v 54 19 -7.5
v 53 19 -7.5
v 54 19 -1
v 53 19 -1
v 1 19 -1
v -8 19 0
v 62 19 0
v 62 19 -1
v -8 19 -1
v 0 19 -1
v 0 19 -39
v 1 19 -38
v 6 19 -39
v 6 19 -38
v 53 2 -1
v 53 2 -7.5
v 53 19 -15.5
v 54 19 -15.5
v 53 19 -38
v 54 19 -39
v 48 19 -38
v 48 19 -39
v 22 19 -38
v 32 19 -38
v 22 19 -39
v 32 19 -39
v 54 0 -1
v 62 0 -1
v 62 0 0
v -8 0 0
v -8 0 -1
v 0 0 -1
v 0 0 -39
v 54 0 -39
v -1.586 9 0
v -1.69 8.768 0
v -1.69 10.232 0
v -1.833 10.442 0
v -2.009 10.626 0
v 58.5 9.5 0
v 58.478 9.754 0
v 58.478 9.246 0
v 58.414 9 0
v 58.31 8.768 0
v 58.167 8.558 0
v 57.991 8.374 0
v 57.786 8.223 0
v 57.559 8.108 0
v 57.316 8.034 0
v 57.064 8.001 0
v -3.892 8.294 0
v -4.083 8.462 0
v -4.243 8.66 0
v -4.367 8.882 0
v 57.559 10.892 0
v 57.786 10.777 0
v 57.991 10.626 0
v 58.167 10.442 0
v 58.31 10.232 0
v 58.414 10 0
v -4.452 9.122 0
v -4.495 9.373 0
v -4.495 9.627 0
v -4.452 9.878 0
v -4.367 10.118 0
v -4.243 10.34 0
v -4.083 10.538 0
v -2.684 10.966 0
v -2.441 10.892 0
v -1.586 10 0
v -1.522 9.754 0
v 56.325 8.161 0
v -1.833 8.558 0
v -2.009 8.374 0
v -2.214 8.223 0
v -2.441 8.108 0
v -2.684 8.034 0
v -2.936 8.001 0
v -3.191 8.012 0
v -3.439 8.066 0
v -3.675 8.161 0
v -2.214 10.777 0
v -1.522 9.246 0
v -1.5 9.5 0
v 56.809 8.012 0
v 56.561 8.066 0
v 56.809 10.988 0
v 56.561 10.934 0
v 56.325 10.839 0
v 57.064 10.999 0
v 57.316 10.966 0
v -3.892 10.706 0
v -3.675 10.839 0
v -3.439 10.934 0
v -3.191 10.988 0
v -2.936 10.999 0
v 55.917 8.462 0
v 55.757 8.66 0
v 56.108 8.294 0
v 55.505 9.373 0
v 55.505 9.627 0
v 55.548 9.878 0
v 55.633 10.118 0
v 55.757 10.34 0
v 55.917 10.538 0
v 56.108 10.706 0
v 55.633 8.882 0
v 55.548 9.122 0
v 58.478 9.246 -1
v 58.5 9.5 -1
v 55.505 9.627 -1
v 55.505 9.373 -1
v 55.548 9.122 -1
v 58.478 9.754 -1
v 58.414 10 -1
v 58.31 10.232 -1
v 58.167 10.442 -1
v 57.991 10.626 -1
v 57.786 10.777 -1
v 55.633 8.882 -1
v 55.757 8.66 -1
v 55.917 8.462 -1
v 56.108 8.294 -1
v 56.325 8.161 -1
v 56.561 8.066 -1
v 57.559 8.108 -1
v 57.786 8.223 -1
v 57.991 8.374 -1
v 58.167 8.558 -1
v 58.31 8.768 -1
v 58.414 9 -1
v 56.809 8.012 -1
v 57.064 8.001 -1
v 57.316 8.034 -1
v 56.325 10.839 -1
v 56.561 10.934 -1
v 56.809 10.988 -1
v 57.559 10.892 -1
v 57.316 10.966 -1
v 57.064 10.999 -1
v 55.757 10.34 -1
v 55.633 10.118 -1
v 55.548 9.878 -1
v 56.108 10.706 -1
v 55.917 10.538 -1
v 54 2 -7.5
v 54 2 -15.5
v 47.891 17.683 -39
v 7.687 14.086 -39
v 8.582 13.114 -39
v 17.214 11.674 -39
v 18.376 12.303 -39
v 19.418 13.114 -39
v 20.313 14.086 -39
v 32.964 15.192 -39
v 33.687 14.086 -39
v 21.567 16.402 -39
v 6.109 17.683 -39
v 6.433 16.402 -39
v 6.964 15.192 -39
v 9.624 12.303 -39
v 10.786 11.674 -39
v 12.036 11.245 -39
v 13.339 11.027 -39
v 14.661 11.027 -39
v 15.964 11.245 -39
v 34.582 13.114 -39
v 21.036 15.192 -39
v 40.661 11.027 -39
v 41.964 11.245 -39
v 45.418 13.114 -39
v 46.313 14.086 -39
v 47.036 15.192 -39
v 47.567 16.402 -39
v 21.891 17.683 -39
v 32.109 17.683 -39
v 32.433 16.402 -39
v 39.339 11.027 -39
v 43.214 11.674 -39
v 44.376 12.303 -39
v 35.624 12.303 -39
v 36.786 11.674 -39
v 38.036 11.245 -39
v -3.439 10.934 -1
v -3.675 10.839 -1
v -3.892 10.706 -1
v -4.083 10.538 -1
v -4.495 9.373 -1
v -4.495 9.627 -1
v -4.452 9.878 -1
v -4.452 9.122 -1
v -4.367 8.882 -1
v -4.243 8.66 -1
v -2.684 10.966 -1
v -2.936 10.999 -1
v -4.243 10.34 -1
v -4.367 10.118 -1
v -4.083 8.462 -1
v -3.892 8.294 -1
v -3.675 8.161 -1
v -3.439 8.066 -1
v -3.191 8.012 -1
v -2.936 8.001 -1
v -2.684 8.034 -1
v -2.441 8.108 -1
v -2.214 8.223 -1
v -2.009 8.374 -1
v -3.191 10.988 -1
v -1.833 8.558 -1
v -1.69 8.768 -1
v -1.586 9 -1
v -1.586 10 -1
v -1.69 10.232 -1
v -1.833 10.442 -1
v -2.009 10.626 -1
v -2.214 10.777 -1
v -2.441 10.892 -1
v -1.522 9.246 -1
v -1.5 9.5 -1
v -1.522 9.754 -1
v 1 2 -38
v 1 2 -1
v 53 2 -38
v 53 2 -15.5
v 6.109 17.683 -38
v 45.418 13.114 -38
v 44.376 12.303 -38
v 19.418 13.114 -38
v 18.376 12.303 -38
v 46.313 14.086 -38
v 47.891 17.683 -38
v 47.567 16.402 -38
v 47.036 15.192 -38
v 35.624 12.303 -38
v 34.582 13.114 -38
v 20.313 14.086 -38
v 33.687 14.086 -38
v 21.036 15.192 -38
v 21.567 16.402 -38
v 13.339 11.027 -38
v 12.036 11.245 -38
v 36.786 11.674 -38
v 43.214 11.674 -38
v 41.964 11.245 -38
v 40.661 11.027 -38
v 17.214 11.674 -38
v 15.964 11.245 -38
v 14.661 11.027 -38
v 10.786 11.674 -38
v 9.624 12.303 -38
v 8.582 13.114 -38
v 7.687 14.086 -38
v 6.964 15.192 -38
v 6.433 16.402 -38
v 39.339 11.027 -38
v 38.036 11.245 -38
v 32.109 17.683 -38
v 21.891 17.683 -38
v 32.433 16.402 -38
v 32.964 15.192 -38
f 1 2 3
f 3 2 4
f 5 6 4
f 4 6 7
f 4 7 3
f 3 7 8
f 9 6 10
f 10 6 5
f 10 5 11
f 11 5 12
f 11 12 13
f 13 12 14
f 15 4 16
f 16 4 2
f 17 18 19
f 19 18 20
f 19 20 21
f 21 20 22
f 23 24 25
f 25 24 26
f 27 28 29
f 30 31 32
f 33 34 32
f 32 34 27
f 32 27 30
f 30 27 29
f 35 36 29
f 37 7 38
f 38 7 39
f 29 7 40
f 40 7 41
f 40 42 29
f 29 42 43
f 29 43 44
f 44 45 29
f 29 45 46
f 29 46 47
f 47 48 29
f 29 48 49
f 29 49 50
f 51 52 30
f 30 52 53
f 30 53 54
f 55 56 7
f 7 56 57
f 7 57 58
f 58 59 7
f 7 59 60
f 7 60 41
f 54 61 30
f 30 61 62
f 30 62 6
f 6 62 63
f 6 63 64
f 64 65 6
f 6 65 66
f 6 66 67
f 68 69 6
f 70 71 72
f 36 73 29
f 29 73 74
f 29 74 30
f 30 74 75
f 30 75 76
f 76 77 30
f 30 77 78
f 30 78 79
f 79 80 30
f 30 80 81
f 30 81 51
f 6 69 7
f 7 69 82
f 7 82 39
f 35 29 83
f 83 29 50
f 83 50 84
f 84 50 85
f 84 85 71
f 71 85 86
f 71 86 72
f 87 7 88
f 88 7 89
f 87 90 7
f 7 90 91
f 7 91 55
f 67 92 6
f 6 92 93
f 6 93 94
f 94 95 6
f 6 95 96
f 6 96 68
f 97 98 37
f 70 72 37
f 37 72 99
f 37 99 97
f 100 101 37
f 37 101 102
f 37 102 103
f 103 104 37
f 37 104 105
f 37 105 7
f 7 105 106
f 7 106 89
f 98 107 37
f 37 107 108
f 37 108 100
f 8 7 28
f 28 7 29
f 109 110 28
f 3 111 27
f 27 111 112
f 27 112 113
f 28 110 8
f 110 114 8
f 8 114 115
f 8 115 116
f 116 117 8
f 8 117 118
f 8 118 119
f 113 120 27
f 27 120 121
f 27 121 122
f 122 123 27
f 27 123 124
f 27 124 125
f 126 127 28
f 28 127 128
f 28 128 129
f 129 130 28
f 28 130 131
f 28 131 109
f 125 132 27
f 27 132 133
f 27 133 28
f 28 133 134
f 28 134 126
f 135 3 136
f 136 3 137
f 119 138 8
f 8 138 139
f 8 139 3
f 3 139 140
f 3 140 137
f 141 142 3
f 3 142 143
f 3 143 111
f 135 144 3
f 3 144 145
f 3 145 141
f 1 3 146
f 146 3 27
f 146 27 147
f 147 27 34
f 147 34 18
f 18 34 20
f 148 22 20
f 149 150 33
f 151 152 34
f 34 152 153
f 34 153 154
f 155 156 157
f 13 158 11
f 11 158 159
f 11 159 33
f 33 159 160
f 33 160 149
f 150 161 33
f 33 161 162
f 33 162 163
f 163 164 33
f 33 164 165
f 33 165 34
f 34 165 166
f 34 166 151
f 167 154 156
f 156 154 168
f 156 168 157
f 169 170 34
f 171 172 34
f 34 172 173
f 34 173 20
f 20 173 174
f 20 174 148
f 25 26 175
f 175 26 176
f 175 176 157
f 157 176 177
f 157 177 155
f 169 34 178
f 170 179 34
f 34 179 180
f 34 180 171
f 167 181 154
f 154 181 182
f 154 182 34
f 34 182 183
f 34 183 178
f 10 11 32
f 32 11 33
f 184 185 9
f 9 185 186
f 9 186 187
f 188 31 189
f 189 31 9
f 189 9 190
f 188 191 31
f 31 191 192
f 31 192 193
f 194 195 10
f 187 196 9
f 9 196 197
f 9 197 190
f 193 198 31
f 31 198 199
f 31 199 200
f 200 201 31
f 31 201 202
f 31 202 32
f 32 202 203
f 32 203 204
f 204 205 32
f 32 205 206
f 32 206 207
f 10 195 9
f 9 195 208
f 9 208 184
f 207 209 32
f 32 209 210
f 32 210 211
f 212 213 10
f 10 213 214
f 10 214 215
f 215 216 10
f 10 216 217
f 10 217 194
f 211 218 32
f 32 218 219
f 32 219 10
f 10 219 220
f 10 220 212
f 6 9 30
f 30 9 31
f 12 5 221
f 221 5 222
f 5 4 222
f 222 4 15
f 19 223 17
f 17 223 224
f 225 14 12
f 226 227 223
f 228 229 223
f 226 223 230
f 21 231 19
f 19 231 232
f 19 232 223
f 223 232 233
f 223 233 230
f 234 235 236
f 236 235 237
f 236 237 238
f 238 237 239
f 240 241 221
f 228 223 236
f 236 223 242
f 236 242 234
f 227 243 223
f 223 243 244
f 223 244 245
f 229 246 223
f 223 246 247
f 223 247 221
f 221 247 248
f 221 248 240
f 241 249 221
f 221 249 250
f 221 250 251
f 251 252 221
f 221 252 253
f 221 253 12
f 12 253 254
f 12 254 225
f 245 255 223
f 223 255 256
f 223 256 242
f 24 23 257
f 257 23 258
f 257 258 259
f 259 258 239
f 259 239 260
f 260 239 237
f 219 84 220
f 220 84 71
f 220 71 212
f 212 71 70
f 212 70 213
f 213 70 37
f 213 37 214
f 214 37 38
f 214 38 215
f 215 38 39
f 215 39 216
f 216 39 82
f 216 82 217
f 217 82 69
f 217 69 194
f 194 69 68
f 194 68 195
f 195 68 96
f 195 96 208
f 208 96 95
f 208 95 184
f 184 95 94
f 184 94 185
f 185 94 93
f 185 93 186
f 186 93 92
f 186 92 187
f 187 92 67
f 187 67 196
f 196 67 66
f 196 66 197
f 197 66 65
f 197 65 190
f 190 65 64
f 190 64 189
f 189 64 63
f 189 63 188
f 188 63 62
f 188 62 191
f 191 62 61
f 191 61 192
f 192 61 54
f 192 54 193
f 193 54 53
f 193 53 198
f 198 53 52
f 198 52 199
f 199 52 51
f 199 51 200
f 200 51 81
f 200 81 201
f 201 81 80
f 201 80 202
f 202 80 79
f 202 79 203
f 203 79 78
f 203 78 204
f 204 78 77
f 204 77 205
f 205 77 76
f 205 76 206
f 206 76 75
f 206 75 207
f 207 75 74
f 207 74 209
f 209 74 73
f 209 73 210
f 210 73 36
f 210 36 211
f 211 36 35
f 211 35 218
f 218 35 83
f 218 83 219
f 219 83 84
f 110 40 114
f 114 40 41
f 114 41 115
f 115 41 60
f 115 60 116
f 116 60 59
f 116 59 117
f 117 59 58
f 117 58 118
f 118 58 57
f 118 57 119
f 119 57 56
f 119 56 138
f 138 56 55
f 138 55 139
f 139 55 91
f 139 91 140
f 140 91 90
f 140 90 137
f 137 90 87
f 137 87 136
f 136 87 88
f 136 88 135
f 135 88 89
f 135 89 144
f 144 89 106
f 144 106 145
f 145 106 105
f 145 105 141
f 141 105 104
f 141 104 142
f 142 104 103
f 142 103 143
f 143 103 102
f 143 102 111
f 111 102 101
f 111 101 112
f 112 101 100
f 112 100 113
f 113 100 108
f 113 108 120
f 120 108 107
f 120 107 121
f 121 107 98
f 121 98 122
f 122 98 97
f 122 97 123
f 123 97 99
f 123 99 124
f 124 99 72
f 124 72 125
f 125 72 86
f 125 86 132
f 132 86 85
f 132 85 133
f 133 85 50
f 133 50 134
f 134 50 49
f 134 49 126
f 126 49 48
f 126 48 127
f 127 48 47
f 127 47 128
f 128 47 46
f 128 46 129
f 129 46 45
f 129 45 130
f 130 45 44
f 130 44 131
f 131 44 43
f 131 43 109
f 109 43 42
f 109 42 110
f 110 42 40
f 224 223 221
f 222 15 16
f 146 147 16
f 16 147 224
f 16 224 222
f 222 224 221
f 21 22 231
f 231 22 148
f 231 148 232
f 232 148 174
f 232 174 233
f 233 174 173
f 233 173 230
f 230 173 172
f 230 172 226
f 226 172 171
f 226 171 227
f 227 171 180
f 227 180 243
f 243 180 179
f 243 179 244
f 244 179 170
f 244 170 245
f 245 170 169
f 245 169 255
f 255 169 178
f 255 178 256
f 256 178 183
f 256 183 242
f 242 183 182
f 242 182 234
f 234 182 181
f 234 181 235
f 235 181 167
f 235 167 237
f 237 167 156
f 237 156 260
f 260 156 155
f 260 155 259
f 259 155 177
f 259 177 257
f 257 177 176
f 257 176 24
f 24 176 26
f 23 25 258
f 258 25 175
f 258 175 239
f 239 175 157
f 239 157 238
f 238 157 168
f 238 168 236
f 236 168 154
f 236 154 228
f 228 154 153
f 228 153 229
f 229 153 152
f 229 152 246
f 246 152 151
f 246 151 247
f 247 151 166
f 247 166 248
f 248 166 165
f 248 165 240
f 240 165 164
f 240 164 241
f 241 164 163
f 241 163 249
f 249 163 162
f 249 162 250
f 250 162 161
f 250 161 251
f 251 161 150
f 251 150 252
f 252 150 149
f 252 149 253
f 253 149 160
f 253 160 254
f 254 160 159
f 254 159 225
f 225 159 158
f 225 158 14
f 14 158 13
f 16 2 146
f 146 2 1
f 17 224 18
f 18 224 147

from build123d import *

# Parameters (mm, degrees)
SKETCH1_W           = 52
SKETCH1_H           = 37
BOSS_EXTRUDE1_DEPTH = 19
CUT_EXTRUDE1_REACH  = 41
SKETCH2_R           = 1.5
SKETCH3_W           = 52
SKETCH3_H           = 37
BOSS_EXTRUDE2_DEPTH = 2
CUT_EXTRUDE2_REACH  = 41
SKETCH4_R           = 8
SKETCH5_W           = 8
SKETCH5_H           = 17
CUT_EXTRUDE3_DEPTH  = 1


with BuildPart() as part:
    # Sketch1 → Boss-Extrude1 (new body)
    with BuildSketch(Plane(origin=(0, 0, 0), x_dir=(1, 0, 0), z_dir=(0, 1, 0))):
        Polygon((54, 0), (62, 0), (62, 1), (54, 1), (54, 39), (0, 39), (0, 1), (-8, 1), (-8, 0), (0, 0), align=None)
        with Locations((27, 19.5)):
            Rectangle(SKETCH1_W, SKETCH1_H, mode=Mode.SUBTRACT)
    extrude(amount=BOSS_EXTRUDE1_DEPTH)

    # Sketch2 → Cut-Extrude1 (cut, up to next)
    with BuildSketch(Plane.XY, mode=Mode.PRIVATE) as cut_extrude1_sk1:
        with Locations((-3, 9.5)):
            Circle(SKETCH2_R)
    cut_extrude1_tool1 = extrude(cut_extrude1_sk1.sketch, amount=-CUT_EXTRUDE1_REACH, mode=Mode.PRIVATE) & part.part
    add(cut_extrude1_tool1.solids().sort_by_distance((-3, 9.5, 0))[0], mode=Mode.SUBTRACT)
    # Sketch2 → Cut-Extrude1 (cut, up to next)
    with BuildSketch(Plane.XY, mode=Mode.PRIVATE) as cut_extrude1_sk2:
        with Locations((57, 9.5)):
            Circle(SKETCH2_R)
    cut_extrude1_tool2 = extrude(cut_extrude1_sk2.sketch, amount=-CUT_EXTRUDE1_REACH, mode=Mode.PRIVATE) & part.part
    add(cut_extrude1_tool2.solids().sort_by_distance((57, 9.5, 0))[0], mode=Mode.SUBTRACT)

    # Sketch3 → Boss-Extrude2 (add)
    with BuildSketch(Plane(origin=(0, 0, 0), x_dir=(1, 0, 0), z_dir=(0, 1, 0))):
        with Locations((27, 19.5)):
            Rectangle(SKETCH3_W, SKETCH3_H)
    extrude(amount=BOSS_EXTRUDE2_DEPTH)

    # Sketch4 → Cut-Extrude2 (cut, up to next)
    with BuildSketch(Plane(origin=(0, 0, -39), x_dir=(-1, 0, 0), z_dir=(0, 0, -1)), mode=Mode.PRIVATE) as cut_extrude2_sk1:
        with Locations((-14, 19)):
            Circle(SKETCH4_R)
    cut_extrude2_tool1 = extrude(cut_extrude2_sk1.sketch, amount=-CUT_EXTRUDE2_REACH, mode=Mode.PRIVATE) & part.part
    add(cut_extrude2_tool1.solids().sort_by_distance((14, 19, -39))[0], mode=Mode.SUBTRACT)
    # Sketch4 → Cut-Extrude2 (cut, up to next)
    with BuildSketch(Plane(origin=(0, 0, -39), x_dir=(-1, 0, 0), z_dir=(0, 0, -1)), mode=Mode.PRIVATE) as cut_extrude2_sk2:
        with Locations((-40, 19)):
            Circle(SKETCH4_R)
    cut_extrude2_tool2 = extrude(cut_extrude2_sk2.sketch, amount=-CUT_EXTRUDE2_REACH, mode=Mode.PRIVATE) & part.part
    add(cut_extrude2_tool2.solids().sort_by_distance((40, 19, -39))[0], mode=Mode.SUBTRACT)

    # Sketch5 → Cut-Extrude3 (cut)
    with BuildSketch(Plane(origin=(54, 0, 0), x_dir=(0, 0, -1), z_dir=(1, 0, 0))):
        with Locations((11.5, 10.5)):
            Rectangle(SKETCH5_W, SKETCH5_H)
    extrude(amount=-CUT_EXTRUDE3_DEPTH, mode=Mode.SUBTRACT)


solid = part.part
